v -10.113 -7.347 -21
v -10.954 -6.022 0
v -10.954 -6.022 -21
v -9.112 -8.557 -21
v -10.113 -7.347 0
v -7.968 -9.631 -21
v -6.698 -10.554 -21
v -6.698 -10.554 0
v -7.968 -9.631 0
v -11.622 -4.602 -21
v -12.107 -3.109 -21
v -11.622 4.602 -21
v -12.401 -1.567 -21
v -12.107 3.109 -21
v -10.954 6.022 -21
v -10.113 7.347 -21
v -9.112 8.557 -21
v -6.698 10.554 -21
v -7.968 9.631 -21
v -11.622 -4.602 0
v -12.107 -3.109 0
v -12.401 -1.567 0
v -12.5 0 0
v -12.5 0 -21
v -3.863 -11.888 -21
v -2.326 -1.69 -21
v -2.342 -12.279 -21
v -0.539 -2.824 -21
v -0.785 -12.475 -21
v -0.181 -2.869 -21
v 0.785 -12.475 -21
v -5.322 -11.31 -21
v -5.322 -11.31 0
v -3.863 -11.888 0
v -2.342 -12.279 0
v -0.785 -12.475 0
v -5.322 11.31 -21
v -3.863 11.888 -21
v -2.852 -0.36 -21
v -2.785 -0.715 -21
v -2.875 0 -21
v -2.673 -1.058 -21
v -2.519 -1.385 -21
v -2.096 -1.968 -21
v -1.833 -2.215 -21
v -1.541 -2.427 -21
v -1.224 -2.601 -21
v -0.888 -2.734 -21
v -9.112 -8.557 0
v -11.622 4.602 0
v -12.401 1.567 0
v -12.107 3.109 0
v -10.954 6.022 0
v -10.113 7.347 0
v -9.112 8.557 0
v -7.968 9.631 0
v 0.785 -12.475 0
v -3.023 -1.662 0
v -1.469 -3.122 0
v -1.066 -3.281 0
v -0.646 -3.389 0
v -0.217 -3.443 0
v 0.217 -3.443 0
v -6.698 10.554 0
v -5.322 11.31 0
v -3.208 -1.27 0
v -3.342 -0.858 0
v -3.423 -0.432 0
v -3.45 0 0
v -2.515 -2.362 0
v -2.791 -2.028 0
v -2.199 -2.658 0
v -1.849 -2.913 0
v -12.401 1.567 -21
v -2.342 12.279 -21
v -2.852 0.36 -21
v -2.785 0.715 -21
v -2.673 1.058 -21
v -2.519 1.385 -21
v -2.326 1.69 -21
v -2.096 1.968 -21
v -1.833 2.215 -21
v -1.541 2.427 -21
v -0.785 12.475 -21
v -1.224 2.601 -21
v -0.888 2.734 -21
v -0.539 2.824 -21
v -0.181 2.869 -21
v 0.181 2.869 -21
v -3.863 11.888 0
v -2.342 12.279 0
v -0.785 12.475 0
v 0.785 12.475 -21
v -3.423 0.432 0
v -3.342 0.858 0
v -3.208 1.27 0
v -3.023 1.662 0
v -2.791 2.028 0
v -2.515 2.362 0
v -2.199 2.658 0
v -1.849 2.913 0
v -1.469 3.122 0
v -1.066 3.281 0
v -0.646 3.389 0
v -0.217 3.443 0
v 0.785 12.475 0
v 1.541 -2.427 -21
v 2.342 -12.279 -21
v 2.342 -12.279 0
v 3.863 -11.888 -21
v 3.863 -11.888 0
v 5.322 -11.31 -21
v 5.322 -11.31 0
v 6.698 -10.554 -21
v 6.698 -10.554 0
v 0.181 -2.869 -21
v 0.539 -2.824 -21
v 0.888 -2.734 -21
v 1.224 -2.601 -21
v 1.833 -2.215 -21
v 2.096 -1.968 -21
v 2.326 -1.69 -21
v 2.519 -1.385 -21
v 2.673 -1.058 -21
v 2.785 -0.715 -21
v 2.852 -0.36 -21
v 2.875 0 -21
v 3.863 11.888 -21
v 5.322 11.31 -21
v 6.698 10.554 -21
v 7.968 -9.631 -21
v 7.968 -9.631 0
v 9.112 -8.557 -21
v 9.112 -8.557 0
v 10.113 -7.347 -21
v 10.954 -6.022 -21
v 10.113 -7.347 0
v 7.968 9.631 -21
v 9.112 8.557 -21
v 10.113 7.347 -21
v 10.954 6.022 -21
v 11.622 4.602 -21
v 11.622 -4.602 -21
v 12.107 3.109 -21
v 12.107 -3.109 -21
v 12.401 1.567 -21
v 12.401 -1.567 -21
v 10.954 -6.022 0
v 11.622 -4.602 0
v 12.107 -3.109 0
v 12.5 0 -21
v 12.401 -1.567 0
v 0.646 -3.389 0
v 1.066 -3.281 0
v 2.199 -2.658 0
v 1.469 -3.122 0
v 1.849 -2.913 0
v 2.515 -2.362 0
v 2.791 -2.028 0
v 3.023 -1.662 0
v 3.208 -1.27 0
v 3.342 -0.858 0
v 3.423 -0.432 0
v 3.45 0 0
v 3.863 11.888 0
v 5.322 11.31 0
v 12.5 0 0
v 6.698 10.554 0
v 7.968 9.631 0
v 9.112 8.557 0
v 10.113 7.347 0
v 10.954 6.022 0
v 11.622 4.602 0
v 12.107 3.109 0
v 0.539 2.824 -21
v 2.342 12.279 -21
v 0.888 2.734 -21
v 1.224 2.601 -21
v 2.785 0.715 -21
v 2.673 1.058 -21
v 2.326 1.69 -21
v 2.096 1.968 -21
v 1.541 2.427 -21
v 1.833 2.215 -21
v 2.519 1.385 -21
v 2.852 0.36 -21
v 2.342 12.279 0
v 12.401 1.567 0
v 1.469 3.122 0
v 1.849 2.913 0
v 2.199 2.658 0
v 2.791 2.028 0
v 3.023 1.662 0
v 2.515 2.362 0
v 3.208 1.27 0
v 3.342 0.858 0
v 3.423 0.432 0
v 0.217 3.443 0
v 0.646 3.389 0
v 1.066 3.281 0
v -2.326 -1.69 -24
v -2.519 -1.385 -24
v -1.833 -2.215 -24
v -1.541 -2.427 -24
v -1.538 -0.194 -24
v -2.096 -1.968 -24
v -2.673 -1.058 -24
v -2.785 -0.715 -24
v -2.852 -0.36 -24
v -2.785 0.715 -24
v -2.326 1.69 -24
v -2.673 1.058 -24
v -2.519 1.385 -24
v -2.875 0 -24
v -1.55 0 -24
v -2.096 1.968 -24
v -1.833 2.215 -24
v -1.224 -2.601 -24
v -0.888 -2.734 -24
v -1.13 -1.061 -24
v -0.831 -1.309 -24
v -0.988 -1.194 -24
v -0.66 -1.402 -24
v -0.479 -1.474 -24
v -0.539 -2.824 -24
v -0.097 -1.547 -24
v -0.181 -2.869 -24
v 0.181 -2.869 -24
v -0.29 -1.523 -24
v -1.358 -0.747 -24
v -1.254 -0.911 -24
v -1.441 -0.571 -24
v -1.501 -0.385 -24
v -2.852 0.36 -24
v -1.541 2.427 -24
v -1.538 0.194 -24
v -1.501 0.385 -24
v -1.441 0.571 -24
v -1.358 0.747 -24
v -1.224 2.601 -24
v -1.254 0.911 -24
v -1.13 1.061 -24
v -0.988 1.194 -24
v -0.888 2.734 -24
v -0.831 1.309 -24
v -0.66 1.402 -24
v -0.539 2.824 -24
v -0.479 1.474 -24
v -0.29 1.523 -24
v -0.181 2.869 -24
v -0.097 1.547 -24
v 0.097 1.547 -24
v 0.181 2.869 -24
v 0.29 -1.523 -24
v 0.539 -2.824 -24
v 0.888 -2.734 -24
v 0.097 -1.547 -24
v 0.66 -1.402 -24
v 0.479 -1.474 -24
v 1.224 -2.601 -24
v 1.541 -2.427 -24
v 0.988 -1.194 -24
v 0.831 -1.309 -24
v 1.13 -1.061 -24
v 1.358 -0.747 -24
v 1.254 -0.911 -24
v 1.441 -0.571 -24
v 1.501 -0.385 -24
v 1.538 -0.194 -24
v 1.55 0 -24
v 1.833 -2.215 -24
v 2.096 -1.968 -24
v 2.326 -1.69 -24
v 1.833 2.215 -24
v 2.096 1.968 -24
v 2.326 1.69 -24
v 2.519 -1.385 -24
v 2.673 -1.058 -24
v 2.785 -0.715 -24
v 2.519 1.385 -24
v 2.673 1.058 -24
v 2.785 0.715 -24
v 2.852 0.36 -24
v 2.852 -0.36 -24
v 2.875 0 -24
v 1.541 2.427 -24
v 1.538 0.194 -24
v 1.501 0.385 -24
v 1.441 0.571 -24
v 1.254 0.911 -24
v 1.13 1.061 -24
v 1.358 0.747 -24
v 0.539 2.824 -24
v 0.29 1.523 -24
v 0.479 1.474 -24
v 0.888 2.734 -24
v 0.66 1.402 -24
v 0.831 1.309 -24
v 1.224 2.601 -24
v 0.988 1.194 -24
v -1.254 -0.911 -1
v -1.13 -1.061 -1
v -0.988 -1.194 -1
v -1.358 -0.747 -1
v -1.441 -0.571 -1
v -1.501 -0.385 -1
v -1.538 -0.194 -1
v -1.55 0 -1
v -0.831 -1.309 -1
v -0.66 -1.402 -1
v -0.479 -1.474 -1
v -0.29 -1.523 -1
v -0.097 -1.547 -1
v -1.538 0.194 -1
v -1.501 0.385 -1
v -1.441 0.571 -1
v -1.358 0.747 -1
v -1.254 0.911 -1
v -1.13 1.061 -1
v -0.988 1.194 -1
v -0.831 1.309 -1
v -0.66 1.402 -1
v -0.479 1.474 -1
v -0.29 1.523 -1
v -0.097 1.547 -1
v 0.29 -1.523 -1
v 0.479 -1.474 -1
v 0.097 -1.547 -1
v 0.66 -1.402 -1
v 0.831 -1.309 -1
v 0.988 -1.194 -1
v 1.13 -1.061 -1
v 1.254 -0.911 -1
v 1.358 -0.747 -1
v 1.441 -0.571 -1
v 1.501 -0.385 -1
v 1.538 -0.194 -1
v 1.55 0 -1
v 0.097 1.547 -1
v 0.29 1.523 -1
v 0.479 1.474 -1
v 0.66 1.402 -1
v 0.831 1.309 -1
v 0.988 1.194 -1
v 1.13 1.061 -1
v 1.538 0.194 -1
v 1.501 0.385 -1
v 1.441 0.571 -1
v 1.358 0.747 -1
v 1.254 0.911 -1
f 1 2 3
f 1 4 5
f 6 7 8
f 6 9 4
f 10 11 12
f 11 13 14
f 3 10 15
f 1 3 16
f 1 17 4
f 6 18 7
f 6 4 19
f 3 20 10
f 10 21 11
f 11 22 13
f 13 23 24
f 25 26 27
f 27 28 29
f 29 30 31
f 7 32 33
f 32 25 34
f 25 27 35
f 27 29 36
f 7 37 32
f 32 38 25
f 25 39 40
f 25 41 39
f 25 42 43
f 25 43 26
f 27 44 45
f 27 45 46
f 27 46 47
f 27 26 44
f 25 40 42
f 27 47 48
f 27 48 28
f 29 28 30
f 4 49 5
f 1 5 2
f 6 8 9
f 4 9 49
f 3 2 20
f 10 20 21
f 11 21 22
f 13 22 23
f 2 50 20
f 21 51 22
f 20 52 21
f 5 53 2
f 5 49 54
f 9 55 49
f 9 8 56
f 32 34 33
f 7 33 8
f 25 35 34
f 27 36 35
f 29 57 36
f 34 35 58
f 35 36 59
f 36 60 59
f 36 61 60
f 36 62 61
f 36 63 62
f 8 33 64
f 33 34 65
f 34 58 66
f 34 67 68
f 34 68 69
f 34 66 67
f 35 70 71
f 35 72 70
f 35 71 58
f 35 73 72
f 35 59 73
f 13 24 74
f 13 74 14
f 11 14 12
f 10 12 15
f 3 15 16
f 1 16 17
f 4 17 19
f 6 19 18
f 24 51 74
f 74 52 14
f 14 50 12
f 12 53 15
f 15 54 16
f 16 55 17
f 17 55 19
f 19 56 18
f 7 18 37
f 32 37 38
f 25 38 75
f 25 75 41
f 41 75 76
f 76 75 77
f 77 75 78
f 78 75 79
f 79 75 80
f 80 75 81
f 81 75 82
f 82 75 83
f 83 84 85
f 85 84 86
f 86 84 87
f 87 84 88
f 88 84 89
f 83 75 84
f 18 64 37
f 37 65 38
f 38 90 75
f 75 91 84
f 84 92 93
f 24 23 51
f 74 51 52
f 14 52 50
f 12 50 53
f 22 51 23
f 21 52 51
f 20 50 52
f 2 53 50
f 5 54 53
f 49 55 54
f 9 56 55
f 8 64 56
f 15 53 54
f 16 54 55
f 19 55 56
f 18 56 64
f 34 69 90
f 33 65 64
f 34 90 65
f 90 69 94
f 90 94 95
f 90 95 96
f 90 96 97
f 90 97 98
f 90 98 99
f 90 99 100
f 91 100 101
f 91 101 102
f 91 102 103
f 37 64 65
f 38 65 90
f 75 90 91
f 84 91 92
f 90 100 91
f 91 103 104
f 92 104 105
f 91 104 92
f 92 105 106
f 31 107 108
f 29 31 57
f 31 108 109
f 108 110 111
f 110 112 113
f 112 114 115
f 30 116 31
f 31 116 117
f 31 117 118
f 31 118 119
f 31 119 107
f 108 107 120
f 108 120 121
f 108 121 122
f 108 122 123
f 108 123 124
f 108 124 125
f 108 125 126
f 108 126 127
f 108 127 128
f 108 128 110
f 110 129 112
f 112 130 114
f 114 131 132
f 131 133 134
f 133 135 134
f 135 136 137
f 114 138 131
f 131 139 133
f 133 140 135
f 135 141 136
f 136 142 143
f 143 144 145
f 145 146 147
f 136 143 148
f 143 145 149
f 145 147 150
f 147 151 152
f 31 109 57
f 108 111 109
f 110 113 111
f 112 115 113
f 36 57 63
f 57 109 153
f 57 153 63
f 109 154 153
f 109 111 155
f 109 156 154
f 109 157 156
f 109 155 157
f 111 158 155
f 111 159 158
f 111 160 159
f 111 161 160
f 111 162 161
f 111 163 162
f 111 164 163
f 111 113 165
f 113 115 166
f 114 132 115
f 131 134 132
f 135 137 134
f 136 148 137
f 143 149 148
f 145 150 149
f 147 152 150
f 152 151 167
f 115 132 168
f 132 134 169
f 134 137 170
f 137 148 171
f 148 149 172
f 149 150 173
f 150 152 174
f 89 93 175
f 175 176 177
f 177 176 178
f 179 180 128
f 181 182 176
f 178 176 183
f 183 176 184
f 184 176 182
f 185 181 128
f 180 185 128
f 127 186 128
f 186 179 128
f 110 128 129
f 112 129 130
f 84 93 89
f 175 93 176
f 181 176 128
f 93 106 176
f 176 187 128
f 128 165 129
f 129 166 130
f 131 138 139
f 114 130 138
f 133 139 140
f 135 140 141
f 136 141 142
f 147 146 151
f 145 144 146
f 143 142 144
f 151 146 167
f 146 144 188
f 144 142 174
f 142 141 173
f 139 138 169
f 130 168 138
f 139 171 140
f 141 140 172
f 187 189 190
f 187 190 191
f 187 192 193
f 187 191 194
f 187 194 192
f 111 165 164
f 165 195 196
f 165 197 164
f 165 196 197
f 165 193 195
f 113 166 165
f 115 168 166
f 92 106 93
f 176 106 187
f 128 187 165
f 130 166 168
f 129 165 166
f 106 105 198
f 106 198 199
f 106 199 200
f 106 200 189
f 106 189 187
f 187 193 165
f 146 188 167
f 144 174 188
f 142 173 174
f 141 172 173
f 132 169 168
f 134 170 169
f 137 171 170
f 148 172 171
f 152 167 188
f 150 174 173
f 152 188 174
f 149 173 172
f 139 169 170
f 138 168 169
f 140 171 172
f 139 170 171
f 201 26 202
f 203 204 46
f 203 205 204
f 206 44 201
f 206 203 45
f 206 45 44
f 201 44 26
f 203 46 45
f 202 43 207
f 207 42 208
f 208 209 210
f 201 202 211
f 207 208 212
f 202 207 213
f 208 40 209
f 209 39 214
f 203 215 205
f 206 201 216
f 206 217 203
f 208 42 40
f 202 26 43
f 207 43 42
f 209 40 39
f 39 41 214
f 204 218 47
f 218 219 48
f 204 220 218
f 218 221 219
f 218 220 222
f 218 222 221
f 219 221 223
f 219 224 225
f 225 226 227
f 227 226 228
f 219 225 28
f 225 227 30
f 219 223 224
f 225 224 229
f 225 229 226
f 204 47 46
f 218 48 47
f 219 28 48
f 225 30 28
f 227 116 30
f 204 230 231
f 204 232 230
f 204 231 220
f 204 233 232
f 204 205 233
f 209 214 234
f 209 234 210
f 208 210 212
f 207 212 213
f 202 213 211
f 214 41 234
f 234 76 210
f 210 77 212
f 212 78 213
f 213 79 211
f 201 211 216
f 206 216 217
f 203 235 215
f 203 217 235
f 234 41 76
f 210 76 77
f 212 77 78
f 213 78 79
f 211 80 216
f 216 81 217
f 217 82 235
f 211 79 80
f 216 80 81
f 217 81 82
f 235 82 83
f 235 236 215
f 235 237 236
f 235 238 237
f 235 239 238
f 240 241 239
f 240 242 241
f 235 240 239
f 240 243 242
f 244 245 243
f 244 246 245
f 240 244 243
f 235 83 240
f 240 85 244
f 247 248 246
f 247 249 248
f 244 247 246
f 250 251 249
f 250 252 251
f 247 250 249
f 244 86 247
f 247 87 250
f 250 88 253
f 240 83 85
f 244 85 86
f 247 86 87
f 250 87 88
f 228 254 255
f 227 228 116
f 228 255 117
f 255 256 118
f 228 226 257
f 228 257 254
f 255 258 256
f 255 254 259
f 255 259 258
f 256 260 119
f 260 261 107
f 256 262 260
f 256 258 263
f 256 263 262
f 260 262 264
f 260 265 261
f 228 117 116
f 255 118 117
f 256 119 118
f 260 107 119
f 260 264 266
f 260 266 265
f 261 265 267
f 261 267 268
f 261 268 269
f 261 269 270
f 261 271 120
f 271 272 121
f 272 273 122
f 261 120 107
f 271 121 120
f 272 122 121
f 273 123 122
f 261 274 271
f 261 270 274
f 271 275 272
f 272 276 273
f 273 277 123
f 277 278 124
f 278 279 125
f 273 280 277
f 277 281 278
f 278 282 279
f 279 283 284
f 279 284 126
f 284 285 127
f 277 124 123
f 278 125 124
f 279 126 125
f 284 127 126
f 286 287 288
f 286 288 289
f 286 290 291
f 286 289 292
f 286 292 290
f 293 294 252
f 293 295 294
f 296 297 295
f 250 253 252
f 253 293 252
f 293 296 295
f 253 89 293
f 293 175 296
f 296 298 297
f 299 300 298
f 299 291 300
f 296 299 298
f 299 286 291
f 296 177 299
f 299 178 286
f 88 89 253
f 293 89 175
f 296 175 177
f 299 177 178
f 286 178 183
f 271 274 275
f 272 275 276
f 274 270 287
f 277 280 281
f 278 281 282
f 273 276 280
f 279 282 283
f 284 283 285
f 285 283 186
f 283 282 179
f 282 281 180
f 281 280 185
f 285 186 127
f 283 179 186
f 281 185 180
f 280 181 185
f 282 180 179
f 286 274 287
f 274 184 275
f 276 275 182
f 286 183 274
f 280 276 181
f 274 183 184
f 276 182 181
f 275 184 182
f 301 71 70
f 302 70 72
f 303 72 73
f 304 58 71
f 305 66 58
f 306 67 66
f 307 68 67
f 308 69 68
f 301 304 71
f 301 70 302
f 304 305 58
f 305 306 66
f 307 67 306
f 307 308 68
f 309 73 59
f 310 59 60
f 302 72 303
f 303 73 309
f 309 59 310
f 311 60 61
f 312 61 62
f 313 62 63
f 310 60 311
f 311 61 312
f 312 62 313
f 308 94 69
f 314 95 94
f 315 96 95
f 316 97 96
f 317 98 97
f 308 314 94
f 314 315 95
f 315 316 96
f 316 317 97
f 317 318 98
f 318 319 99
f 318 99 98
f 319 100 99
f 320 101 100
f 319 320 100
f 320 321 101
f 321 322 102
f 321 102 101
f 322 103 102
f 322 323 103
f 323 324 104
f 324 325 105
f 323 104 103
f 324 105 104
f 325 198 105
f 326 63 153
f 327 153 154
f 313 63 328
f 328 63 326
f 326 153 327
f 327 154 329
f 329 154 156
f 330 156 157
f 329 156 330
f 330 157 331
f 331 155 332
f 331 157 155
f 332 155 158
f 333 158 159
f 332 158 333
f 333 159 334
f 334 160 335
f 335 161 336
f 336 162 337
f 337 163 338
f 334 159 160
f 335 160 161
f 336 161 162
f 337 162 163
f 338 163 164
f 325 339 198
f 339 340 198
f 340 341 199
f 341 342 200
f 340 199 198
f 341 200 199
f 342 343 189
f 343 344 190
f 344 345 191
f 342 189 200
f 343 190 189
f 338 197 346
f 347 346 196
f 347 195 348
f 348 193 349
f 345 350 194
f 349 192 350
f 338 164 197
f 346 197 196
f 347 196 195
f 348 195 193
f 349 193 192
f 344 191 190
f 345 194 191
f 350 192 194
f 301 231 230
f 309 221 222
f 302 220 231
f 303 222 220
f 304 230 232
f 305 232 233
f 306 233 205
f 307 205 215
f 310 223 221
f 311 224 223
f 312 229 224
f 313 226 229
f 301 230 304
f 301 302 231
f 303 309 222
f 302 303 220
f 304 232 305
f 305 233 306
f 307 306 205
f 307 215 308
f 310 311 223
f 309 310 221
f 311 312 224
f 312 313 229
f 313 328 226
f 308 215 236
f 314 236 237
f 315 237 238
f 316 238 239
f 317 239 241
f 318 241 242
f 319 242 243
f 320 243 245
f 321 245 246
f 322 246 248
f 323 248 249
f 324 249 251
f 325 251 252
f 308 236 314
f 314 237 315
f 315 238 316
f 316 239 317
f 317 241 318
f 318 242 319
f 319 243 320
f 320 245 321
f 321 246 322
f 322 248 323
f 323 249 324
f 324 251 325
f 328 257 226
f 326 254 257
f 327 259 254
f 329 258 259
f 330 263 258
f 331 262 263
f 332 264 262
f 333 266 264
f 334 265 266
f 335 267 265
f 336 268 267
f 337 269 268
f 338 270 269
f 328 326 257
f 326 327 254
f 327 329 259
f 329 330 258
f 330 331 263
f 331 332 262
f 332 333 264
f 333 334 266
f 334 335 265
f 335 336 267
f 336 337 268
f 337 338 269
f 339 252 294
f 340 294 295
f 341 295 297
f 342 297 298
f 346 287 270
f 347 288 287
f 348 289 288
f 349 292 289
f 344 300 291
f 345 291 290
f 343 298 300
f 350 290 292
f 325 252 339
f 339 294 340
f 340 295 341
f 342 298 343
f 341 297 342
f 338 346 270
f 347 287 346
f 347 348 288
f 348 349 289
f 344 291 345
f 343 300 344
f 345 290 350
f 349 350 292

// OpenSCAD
$fn = 50;

difference() {
	union() {
		translate(v = [0, 0, -21.0]) {
			cylinder(h = 21, r = 12.5);
		}
		#translate(v = [0, 0, -24.0]) {
			cylinder(h = 24, r = 2.875);
		}
	}
	union() {
		translate(v = [0, 0, 0]) {
			rotate(a = [0, 0, 0]) {
				difference() {
					union() {
						translate(v = [0, 0, -24.0]) {
							cylinder(h = 24, r = 1.25);
						}
						translate(v = [0, 0, -1.0]) {
							cylinder(h = 1.0, r1 = 1.55, r2 = 3.45);
						}
						translate(v = [0, 0, -24.0]) {
							cylinder(h = 24, r = 1.55);
						}
						translate(v = [0, 0, -24.0]) {
							cylinder(h = 24, r = 1.25);
						}
					}
					union();
				}
			}
		}
	}
}
